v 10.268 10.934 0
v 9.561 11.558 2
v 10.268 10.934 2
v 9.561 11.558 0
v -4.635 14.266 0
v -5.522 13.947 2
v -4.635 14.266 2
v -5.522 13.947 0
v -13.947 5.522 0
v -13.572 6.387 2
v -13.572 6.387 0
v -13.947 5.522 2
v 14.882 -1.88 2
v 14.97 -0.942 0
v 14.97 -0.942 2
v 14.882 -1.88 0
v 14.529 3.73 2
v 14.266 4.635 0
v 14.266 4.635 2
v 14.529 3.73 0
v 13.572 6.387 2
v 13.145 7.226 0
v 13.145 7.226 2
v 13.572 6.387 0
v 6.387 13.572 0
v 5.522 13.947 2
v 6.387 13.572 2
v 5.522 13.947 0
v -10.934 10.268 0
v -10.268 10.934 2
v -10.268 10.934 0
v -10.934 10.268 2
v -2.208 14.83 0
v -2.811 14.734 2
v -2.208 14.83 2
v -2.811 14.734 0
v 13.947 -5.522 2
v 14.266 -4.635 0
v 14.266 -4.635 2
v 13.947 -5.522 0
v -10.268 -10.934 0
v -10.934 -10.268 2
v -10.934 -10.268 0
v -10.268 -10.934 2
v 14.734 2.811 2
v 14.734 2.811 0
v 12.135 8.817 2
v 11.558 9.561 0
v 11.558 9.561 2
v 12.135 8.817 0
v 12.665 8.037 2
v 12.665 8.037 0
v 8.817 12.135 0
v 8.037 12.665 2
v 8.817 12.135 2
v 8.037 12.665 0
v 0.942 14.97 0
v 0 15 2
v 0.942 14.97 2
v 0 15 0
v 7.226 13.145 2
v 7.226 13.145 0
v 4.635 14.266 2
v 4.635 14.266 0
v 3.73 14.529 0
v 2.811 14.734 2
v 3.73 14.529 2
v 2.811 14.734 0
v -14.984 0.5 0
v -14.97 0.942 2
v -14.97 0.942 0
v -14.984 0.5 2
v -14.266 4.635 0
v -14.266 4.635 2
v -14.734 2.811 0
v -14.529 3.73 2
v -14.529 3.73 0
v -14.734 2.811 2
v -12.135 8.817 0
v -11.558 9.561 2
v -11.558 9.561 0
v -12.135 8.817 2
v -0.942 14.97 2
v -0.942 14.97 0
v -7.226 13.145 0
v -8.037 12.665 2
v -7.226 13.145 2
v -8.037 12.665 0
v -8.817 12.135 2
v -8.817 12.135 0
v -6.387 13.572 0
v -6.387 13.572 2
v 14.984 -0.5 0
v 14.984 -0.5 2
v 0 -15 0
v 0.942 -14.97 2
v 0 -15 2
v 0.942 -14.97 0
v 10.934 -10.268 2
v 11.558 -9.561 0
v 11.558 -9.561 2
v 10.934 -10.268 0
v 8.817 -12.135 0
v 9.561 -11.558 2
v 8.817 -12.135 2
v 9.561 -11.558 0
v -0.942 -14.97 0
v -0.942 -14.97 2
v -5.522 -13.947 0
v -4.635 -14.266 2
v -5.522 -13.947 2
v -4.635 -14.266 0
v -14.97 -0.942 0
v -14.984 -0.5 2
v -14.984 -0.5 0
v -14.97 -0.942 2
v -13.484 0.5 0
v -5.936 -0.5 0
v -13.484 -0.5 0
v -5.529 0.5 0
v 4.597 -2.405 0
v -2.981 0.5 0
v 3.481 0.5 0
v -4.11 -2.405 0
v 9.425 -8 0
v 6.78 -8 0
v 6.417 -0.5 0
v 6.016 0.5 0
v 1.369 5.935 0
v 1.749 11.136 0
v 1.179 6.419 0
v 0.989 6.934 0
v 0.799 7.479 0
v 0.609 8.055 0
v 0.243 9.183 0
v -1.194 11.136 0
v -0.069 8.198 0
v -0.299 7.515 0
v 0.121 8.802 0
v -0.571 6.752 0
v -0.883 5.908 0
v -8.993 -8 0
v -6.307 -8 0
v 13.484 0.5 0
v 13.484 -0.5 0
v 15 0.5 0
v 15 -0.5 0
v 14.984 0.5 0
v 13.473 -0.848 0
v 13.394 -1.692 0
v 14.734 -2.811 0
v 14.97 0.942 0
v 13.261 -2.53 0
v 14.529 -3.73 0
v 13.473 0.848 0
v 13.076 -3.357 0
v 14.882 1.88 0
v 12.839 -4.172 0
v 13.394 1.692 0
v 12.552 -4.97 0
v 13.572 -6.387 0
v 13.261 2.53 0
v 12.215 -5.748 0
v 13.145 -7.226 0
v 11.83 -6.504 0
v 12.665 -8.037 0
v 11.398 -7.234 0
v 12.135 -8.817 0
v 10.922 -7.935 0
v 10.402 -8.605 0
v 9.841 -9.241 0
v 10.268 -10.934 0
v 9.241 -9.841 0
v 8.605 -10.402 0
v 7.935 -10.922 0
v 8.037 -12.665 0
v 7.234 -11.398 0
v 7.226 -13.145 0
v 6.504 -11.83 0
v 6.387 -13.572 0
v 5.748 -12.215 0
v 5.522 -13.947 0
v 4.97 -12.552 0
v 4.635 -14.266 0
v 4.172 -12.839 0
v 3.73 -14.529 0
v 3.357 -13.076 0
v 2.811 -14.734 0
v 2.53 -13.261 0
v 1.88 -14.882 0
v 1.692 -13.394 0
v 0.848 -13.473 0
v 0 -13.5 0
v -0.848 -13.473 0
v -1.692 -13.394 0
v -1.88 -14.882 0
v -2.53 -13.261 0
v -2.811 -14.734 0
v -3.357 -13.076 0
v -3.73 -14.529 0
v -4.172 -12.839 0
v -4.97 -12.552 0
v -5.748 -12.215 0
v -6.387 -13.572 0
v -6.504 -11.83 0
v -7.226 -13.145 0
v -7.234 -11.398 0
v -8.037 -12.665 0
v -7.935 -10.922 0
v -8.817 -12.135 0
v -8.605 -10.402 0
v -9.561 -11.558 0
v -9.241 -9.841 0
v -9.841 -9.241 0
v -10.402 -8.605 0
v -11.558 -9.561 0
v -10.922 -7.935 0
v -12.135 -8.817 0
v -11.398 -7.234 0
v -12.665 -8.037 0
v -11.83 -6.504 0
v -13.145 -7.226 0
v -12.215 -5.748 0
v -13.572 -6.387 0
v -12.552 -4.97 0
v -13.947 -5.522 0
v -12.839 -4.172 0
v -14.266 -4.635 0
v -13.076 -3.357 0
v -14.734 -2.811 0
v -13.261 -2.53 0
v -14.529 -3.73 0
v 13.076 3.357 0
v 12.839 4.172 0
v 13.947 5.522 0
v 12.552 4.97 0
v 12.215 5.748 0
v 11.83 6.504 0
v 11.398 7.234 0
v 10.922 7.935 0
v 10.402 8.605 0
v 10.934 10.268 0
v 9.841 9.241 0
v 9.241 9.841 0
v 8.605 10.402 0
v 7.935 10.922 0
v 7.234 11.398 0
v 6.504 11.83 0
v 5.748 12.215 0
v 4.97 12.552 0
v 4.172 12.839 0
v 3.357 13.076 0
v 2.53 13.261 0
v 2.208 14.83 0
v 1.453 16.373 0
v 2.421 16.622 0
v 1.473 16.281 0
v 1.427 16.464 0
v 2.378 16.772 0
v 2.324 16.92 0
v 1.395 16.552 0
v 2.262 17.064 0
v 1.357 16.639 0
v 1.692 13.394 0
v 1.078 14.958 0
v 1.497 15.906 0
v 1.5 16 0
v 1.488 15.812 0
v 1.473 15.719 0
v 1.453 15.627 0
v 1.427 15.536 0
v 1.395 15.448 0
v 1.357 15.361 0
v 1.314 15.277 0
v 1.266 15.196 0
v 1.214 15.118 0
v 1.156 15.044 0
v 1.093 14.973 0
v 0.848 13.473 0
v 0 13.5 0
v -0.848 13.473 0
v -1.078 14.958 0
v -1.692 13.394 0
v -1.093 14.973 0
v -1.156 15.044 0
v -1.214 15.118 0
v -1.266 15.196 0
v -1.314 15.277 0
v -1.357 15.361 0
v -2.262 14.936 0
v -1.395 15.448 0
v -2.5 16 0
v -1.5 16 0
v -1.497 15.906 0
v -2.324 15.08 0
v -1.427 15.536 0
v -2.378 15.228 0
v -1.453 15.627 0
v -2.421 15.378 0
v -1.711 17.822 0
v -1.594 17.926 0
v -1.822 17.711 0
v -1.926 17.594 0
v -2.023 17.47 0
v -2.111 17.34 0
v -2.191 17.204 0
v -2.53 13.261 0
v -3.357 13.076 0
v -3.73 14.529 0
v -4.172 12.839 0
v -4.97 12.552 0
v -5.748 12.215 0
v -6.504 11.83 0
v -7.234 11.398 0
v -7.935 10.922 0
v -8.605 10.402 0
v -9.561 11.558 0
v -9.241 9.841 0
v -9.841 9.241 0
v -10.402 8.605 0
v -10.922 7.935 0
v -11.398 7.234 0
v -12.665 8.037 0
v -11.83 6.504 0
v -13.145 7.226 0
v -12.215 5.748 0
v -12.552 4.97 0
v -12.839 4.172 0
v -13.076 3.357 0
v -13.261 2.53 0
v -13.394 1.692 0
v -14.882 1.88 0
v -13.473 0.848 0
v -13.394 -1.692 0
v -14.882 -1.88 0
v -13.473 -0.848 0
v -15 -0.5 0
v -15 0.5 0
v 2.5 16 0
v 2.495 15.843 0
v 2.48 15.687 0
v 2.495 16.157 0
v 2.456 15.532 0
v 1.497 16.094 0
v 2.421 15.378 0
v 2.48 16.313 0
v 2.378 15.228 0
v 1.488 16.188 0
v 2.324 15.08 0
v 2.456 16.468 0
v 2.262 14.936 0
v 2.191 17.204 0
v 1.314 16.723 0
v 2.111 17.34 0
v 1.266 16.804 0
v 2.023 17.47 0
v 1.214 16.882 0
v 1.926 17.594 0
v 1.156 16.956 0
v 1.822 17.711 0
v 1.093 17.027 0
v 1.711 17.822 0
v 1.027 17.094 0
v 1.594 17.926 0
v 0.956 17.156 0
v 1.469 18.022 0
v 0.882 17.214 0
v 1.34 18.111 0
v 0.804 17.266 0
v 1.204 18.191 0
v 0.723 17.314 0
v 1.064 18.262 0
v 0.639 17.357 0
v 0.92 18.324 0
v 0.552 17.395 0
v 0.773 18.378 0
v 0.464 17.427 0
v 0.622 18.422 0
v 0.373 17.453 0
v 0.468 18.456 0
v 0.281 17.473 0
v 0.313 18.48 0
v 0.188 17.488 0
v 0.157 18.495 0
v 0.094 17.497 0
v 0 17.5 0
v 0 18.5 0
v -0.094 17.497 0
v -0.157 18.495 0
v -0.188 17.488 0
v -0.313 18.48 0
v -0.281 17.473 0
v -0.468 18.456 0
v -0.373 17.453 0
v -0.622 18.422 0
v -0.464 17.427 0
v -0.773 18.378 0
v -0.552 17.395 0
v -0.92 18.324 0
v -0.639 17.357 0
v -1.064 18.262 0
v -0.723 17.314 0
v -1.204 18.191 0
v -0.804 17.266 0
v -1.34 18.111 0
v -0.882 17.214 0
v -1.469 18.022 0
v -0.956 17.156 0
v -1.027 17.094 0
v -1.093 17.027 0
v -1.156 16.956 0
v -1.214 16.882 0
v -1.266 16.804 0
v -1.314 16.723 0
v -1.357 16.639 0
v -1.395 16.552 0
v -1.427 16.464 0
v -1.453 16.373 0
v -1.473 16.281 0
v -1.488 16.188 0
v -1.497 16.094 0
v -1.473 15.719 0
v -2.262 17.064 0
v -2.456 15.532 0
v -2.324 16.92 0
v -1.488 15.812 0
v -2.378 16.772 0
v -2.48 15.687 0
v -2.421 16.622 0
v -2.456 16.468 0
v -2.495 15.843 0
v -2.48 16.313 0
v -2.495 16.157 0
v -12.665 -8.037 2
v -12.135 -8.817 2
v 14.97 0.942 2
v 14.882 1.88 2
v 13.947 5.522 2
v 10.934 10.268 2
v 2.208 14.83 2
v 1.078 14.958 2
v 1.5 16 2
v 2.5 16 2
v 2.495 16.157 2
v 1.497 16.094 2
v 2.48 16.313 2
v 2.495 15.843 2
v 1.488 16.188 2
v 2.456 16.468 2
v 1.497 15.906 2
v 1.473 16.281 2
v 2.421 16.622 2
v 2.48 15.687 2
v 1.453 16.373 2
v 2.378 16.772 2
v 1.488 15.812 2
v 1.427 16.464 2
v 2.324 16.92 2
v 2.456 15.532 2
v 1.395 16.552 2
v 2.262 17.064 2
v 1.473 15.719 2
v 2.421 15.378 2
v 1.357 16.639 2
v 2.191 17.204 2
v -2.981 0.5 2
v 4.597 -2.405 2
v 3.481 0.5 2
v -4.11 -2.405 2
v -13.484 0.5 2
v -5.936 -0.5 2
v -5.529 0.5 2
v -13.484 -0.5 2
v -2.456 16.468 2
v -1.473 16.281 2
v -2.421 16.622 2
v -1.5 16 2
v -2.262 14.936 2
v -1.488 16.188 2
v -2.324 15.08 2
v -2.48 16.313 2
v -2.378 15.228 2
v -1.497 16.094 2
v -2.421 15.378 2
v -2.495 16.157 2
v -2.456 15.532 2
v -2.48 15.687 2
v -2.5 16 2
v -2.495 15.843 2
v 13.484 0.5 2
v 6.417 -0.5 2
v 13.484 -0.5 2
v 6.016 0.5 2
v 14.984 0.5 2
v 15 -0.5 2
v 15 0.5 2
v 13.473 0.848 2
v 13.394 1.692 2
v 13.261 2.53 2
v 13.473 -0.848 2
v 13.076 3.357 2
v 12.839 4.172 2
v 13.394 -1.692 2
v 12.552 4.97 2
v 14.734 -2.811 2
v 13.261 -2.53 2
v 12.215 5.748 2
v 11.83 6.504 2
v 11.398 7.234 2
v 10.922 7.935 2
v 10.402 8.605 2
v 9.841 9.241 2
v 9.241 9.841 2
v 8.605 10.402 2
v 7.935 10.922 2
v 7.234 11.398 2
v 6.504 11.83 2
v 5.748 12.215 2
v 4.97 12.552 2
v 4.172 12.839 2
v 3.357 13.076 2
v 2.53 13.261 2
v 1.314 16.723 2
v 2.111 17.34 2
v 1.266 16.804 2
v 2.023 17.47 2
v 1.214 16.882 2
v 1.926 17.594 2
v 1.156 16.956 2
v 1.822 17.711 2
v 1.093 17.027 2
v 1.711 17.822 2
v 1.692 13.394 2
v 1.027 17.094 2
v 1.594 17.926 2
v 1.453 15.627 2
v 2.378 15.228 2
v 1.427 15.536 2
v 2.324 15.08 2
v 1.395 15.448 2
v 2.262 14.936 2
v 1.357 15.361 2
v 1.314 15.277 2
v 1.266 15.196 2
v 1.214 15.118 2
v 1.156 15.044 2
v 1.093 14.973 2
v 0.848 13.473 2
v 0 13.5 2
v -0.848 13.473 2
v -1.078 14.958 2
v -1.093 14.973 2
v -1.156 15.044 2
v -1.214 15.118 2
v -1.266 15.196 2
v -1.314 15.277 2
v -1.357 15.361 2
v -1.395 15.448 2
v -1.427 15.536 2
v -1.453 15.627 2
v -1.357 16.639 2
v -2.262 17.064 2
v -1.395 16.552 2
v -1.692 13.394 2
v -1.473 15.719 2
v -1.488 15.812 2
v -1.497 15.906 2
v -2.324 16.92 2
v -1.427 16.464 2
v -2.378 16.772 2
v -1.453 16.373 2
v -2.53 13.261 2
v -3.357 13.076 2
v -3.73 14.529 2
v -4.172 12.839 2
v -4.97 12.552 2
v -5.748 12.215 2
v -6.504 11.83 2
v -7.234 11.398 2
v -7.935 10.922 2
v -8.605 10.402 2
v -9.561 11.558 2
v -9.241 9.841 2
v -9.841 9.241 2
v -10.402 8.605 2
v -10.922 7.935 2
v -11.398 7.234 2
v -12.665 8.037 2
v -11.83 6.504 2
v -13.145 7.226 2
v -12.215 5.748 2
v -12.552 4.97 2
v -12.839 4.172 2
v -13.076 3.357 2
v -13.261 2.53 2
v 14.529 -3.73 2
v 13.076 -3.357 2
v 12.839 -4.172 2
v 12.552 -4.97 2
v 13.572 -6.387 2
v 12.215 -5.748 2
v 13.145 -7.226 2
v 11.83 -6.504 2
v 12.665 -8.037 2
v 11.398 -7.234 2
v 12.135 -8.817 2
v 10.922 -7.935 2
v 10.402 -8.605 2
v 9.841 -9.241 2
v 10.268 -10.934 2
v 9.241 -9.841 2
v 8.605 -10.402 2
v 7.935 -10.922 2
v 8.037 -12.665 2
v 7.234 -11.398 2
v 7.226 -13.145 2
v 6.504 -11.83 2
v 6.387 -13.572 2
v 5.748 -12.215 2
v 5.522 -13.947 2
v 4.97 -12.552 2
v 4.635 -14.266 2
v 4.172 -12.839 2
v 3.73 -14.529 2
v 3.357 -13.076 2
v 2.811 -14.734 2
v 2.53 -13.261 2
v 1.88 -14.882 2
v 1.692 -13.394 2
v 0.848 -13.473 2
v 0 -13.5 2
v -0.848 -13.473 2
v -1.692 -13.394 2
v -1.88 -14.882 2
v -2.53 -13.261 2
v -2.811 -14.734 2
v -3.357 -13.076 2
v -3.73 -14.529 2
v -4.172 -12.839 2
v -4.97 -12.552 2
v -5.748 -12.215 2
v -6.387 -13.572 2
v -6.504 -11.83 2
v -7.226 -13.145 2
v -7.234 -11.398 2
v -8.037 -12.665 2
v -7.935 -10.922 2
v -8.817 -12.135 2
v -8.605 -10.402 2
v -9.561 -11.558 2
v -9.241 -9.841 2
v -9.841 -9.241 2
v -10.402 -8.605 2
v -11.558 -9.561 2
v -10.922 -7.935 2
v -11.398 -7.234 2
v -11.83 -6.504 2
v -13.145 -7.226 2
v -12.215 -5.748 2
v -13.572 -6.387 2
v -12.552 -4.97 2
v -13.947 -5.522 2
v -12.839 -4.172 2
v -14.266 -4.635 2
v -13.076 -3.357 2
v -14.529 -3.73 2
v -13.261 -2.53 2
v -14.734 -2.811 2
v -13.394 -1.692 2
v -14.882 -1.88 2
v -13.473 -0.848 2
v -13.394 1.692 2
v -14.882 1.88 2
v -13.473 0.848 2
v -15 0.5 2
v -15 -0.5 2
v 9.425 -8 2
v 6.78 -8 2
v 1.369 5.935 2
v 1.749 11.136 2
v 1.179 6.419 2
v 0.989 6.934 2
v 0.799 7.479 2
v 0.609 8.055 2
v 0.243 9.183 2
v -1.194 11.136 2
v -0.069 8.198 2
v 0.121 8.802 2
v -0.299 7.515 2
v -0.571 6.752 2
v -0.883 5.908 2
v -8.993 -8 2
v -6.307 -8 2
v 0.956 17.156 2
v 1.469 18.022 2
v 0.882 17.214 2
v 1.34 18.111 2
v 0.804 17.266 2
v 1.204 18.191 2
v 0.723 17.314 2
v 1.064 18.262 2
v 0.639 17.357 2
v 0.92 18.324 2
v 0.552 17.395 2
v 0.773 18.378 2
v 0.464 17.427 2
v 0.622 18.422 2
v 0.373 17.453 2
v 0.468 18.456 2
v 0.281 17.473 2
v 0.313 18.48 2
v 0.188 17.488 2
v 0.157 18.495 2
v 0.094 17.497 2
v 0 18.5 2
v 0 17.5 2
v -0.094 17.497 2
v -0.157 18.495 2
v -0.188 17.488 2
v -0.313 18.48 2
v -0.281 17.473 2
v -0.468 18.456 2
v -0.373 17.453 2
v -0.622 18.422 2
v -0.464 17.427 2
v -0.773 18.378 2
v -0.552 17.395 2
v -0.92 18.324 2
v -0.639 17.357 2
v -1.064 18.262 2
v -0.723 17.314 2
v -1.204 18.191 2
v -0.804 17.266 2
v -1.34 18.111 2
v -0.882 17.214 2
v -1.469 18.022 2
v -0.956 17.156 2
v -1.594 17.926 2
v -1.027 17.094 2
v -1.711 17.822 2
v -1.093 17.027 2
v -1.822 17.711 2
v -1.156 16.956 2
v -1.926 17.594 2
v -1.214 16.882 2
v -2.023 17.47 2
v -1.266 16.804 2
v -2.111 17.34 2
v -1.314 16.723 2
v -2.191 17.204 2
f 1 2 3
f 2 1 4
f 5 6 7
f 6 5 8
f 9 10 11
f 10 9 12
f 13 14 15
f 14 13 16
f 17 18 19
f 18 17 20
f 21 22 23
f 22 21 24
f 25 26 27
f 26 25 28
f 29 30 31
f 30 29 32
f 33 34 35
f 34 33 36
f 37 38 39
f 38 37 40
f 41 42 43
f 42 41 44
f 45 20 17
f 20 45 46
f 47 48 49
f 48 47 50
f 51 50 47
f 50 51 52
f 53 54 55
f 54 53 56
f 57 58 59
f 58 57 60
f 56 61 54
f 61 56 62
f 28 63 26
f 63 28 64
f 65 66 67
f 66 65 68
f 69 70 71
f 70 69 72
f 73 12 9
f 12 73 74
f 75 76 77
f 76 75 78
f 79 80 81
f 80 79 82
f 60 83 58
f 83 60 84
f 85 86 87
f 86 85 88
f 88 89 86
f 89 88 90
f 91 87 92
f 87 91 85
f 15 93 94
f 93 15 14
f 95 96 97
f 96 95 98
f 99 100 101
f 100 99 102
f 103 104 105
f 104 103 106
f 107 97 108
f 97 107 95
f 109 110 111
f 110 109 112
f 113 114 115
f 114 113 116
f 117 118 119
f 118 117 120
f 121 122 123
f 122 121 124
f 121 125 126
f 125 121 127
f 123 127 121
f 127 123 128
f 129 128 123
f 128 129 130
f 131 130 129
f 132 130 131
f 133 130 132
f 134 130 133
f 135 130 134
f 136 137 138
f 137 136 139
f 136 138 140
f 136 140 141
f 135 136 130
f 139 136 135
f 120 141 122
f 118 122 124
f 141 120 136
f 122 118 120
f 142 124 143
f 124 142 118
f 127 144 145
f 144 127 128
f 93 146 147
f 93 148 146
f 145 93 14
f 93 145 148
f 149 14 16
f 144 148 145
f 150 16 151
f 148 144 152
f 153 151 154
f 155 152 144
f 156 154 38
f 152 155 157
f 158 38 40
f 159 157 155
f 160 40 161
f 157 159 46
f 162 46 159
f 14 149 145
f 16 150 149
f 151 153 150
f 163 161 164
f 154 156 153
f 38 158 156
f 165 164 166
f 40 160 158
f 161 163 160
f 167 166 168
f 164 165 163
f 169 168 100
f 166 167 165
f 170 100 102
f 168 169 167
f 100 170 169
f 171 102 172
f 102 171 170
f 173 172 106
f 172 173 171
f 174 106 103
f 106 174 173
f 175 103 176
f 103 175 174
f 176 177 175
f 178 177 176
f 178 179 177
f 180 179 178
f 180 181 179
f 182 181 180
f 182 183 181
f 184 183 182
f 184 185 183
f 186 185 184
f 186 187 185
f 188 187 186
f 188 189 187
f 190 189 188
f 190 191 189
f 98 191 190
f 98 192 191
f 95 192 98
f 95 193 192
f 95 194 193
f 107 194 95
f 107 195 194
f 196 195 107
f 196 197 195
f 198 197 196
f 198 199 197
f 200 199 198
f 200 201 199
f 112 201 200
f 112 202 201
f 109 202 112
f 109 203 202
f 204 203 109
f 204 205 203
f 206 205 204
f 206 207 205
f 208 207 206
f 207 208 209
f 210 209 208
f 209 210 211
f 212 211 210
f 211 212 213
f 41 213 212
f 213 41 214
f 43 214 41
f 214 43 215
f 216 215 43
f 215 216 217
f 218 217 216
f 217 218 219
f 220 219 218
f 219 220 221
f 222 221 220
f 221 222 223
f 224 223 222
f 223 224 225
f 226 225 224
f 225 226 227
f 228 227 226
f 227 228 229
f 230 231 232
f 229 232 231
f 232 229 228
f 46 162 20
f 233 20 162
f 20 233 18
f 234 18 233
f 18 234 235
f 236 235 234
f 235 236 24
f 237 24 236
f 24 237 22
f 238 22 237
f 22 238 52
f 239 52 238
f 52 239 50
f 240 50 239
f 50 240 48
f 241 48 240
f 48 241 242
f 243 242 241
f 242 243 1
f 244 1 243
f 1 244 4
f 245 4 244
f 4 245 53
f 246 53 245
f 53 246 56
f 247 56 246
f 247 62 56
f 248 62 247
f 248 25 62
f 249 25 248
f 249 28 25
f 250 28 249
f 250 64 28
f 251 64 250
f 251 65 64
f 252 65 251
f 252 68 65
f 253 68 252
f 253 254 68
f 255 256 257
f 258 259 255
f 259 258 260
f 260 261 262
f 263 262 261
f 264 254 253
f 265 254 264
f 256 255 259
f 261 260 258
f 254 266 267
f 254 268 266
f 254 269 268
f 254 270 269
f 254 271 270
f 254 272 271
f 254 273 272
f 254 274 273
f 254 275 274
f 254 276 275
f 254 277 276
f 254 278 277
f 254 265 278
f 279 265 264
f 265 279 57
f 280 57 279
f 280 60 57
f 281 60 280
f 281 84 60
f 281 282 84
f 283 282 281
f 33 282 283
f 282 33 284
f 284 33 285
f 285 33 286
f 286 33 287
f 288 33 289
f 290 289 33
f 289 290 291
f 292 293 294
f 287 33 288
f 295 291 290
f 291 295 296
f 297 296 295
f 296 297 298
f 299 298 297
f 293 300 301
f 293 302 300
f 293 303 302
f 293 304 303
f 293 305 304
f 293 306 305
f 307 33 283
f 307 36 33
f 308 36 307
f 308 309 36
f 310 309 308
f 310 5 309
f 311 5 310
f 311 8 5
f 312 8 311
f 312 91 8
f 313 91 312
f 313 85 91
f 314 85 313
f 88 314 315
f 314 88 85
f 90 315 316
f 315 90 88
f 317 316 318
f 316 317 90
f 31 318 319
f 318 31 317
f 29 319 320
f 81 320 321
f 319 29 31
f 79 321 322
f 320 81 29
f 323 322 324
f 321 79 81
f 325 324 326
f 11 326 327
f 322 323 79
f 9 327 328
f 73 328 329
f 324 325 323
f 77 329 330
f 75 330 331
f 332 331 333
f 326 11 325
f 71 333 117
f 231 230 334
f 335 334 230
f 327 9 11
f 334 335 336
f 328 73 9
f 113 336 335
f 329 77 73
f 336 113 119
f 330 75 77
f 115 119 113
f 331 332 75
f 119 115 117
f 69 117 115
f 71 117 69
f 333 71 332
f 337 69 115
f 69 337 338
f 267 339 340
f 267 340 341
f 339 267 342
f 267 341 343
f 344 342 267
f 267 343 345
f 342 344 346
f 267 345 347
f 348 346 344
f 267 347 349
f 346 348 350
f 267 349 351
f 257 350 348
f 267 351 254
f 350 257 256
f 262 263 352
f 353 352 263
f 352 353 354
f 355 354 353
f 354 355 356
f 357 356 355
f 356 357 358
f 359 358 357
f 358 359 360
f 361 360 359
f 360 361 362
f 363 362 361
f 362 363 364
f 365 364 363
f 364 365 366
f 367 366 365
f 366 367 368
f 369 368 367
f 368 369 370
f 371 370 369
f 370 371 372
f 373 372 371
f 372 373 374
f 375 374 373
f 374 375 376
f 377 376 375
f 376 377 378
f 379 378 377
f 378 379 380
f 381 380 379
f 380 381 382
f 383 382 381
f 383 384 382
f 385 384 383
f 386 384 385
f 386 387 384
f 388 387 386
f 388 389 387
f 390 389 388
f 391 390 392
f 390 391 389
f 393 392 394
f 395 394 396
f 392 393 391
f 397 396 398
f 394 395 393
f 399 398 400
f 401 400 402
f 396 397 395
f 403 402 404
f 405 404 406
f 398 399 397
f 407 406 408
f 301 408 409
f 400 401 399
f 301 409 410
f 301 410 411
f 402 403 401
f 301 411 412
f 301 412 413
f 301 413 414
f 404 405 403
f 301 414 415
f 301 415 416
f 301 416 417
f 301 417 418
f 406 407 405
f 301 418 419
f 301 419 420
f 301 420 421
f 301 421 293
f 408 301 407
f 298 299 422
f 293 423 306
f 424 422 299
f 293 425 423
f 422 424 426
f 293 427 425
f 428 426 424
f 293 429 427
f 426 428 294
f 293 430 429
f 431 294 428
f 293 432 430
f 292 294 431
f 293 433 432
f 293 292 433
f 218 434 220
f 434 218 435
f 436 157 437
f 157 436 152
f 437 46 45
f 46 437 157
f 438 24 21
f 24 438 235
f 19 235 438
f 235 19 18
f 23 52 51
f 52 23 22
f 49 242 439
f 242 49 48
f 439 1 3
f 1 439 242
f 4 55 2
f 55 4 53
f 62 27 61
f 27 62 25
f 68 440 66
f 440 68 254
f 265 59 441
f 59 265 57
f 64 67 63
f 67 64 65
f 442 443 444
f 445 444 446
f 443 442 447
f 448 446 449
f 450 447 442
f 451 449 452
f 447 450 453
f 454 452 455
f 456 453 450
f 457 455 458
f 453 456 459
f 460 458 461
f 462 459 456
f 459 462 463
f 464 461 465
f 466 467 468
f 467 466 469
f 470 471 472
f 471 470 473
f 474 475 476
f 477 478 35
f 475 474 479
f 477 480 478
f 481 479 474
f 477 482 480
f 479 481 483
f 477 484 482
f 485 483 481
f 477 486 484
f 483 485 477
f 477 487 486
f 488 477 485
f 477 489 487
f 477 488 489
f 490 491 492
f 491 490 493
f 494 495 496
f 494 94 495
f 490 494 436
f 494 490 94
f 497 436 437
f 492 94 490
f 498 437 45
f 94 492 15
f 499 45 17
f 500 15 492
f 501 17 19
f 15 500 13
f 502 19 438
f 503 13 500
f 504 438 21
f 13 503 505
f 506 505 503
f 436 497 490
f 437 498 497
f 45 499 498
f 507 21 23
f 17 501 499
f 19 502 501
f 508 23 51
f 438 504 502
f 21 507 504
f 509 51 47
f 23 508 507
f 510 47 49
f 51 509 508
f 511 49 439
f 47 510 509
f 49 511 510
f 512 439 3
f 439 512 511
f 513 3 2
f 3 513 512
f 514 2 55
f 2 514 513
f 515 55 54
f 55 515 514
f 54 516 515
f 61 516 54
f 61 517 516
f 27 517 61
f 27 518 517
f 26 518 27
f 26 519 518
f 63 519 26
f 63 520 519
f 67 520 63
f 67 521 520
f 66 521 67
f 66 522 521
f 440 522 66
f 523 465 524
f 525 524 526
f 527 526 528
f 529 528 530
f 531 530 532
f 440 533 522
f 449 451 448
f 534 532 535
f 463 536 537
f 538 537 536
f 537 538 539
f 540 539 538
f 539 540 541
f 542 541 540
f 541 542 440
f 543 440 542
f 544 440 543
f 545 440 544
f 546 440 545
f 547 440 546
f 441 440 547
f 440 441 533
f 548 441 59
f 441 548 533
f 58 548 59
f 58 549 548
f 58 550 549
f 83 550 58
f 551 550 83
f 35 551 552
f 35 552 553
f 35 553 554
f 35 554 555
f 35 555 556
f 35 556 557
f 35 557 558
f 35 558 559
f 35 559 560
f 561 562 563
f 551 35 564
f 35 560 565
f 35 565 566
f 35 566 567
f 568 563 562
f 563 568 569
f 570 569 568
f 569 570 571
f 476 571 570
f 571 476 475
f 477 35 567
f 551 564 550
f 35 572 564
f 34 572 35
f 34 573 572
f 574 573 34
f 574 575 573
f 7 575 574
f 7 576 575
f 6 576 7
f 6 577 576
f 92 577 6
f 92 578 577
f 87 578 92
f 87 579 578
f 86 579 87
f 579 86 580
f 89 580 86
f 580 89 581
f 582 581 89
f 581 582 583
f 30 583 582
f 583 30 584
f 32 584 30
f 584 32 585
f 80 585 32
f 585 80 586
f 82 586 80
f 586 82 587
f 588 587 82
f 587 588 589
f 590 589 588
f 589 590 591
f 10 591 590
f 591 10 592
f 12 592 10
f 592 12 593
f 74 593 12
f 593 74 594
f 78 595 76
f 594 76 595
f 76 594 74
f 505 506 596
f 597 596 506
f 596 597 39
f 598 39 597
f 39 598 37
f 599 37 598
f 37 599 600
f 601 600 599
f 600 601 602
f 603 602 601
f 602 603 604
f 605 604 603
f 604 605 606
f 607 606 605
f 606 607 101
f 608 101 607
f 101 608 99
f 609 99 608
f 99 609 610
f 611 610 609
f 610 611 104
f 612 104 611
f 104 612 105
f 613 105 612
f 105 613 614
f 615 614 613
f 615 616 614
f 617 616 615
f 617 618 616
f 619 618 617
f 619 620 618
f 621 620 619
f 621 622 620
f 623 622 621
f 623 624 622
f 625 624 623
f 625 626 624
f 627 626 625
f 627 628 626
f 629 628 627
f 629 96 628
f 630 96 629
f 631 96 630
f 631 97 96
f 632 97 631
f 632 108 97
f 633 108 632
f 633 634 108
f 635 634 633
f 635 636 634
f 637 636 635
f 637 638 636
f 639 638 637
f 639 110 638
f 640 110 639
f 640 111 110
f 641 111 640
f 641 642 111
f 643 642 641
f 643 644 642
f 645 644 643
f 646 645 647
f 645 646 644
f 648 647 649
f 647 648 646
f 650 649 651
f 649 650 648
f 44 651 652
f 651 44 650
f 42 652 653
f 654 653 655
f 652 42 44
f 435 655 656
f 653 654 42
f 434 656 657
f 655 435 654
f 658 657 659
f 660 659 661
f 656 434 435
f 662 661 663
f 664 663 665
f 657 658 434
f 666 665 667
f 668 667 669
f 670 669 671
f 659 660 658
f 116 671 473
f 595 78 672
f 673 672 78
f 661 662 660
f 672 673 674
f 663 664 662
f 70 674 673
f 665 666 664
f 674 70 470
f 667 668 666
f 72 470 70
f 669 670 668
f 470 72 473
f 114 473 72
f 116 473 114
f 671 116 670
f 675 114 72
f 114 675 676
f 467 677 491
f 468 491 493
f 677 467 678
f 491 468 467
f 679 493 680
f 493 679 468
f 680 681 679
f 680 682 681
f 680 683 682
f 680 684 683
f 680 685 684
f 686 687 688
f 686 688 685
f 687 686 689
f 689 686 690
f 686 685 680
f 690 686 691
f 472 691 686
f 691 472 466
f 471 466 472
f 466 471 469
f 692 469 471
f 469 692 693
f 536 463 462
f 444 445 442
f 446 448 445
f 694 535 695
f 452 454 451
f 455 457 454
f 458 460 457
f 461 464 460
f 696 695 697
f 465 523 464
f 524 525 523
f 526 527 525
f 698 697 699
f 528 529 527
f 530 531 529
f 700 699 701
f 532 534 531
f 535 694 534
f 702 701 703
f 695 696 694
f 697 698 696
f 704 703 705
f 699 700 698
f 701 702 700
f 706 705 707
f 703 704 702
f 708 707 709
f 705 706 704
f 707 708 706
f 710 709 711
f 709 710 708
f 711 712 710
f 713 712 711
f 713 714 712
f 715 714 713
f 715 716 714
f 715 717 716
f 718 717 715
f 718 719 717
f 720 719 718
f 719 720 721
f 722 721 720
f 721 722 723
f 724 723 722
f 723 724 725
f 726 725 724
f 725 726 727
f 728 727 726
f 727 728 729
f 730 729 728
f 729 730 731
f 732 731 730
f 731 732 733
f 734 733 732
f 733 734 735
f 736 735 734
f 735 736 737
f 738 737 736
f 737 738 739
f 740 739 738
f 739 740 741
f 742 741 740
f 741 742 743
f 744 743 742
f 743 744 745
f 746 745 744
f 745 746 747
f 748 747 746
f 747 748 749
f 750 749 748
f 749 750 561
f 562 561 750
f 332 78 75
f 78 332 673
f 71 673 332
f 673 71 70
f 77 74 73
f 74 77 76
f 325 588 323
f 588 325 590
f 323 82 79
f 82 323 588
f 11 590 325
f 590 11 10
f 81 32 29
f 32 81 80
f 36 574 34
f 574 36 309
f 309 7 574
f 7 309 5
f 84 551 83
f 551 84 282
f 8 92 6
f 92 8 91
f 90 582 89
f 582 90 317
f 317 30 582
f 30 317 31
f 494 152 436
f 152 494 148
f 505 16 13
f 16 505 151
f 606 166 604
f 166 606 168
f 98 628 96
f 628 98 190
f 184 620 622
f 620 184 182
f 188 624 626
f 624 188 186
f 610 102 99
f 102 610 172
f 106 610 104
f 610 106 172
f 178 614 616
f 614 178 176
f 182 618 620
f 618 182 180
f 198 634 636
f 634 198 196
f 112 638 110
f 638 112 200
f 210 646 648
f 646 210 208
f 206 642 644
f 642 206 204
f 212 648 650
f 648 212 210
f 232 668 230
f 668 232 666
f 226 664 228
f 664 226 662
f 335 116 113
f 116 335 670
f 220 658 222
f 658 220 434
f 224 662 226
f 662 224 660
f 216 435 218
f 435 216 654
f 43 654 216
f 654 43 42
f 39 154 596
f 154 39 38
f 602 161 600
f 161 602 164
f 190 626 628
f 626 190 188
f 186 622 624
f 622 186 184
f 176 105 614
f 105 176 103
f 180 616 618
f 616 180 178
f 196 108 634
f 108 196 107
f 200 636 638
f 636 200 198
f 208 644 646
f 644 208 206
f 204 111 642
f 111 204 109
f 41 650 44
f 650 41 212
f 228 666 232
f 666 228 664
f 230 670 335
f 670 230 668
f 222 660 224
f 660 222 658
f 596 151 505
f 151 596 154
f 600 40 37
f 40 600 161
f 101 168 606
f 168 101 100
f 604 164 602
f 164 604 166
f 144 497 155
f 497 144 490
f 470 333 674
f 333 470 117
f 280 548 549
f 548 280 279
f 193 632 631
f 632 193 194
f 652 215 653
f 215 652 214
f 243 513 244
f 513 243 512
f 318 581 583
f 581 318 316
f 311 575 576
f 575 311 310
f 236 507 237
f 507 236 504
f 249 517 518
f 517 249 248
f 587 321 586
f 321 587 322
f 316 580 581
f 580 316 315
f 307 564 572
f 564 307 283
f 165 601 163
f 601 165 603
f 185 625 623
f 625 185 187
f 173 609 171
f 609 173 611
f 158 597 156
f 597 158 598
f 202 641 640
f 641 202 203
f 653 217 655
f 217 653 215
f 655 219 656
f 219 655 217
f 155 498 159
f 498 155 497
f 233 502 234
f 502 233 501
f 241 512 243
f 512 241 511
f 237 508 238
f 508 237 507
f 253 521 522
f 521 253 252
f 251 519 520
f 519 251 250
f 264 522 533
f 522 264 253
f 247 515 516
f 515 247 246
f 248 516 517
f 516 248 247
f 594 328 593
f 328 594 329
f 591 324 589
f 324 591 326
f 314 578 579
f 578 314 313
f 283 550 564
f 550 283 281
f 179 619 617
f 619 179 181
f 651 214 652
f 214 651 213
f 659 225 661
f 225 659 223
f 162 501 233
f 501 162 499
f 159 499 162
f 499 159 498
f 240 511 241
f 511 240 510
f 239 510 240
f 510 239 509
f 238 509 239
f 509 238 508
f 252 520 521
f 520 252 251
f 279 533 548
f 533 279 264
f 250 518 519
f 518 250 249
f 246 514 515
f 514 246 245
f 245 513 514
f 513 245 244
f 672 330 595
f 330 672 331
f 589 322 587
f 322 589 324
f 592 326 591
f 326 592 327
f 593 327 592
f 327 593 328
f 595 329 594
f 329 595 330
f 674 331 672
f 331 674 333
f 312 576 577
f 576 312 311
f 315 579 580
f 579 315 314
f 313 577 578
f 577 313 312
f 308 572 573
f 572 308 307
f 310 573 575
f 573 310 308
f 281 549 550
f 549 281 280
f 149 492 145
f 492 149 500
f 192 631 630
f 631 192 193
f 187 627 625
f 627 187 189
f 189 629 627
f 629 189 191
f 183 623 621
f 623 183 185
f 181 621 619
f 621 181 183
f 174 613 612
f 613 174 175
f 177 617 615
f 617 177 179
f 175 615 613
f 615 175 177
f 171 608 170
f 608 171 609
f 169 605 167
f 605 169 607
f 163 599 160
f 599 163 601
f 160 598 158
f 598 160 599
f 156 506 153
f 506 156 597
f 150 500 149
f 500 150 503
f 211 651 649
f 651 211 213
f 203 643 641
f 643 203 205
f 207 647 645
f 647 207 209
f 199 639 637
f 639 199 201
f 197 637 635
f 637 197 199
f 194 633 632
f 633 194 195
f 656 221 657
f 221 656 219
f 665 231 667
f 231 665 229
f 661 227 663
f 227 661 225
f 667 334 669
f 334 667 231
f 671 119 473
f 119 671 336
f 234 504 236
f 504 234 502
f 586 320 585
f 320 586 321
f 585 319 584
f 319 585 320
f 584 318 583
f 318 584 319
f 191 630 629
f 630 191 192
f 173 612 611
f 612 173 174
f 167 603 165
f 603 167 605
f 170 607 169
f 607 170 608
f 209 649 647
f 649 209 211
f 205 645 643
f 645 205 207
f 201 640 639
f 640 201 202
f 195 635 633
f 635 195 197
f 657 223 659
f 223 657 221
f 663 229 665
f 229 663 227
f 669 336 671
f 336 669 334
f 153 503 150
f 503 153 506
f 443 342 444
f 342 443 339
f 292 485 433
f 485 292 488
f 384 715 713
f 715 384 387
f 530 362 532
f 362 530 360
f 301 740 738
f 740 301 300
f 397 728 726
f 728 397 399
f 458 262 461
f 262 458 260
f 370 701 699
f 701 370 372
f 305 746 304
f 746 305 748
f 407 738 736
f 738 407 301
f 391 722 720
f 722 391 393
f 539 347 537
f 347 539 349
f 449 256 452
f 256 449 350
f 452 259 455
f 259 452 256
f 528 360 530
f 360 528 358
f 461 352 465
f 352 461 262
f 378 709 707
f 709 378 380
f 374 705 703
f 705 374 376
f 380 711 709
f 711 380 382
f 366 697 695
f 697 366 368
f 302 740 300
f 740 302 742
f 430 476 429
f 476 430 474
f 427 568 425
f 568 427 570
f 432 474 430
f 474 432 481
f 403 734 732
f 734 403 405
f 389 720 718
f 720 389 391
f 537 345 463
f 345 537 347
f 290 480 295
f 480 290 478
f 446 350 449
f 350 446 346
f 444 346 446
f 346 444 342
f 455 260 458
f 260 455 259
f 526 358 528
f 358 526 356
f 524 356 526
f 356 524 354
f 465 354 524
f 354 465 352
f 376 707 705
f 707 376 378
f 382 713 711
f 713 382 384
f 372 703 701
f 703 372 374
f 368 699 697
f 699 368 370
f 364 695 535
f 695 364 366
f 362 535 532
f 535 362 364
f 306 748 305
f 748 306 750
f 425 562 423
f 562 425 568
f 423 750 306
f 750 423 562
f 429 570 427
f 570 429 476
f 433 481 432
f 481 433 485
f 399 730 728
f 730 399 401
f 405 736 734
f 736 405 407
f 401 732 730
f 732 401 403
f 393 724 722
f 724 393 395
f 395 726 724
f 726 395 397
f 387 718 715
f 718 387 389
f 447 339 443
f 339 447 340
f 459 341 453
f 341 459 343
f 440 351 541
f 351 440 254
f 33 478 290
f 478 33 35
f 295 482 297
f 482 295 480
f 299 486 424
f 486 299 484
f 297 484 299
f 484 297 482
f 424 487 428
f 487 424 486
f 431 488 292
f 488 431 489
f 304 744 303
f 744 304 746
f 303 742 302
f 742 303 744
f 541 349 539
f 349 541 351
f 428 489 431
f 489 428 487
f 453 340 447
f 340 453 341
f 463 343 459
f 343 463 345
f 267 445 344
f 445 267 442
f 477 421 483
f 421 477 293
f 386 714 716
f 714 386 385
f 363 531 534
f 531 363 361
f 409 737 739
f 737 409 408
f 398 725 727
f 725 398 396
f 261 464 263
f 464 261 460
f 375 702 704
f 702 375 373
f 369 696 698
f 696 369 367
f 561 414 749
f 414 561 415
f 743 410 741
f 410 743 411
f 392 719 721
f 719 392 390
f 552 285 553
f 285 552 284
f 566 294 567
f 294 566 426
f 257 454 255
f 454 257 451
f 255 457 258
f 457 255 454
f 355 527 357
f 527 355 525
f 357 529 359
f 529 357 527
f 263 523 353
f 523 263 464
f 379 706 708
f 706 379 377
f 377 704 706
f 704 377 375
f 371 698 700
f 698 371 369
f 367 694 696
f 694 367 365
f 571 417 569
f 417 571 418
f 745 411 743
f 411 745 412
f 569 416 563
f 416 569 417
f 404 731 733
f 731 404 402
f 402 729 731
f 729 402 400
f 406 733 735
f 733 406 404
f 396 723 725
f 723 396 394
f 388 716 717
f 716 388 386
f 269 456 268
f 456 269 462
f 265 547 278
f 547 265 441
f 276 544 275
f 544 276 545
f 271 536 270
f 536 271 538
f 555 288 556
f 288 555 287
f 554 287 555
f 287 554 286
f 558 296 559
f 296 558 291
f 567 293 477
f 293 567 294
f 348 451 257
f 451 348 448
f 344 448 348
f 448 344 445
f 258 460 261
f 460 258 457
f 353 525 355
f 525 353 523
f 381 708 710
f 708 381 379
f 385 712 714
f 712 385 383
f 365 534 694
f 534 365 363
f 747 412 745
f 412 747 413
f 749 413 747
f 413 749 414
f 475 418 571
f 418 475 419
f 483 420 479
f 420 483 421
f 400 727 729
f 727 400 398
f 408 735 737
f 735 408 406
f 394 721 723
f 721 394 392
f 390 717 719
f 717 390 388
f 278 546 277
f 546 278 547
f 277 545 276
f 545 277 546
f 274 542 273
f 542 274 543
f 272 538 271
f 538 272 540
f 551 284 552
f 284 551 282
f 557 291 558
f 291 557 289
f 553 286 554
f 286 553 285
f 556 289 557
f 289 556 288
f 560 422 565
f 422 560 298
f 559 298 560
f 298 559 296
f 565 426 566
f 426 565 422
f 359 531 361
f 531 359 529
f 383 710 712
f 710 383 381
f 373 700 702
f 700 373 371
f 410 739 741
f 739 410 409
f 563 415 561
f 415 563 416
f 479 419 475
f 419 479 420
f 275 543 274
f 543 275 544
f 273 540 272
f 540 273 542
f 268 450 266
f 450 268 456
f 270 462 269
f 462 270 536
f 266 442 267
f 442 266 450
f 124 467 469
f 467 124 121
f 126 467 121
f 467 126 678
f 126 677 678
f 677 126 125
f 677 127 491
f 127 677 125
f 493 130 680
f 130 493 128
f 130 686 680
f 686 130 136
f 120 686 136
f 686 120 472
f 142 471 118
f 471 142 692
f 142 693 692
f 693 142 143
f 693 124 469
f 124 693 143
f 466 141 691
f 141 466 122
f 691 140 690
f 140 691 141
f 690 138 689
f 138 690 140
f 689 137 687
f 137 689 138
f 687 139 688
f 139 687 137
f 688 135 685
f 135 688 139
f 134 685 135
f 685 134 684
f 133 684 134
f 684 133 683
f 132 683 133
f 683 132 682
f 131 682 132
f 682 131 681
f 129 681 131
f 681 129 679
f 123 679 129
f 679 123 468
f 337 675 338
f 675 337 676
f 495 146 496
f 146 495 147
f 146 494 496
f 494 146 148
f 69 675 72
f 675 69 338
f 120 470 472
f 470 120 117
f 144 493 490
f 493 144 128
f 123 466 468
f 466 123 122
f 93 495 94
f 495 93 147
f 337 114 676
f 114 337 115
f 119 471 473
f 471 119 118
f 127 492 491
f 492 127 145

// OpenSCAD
h = 2;
rad = 15;
text_size = 20;

translate([0, -8, 0])
{
linear_extrude(h)
    text("A",size=text_size,halign="center");
    
}

translate([0,rad+1,0])
{ 
    difference(){
        cylinder(h=h,r=2.5);
        $fn=100;
        cylinder(h=h,r=1.5);
    }
}

difference()
{
    cylinder(h=h,r=rad);
    $fn=100;
    cylinder(h=h,r=rad-1.5);
}

translate([-rad,-0.5,0])
    cube([rad*2,1,h]);
